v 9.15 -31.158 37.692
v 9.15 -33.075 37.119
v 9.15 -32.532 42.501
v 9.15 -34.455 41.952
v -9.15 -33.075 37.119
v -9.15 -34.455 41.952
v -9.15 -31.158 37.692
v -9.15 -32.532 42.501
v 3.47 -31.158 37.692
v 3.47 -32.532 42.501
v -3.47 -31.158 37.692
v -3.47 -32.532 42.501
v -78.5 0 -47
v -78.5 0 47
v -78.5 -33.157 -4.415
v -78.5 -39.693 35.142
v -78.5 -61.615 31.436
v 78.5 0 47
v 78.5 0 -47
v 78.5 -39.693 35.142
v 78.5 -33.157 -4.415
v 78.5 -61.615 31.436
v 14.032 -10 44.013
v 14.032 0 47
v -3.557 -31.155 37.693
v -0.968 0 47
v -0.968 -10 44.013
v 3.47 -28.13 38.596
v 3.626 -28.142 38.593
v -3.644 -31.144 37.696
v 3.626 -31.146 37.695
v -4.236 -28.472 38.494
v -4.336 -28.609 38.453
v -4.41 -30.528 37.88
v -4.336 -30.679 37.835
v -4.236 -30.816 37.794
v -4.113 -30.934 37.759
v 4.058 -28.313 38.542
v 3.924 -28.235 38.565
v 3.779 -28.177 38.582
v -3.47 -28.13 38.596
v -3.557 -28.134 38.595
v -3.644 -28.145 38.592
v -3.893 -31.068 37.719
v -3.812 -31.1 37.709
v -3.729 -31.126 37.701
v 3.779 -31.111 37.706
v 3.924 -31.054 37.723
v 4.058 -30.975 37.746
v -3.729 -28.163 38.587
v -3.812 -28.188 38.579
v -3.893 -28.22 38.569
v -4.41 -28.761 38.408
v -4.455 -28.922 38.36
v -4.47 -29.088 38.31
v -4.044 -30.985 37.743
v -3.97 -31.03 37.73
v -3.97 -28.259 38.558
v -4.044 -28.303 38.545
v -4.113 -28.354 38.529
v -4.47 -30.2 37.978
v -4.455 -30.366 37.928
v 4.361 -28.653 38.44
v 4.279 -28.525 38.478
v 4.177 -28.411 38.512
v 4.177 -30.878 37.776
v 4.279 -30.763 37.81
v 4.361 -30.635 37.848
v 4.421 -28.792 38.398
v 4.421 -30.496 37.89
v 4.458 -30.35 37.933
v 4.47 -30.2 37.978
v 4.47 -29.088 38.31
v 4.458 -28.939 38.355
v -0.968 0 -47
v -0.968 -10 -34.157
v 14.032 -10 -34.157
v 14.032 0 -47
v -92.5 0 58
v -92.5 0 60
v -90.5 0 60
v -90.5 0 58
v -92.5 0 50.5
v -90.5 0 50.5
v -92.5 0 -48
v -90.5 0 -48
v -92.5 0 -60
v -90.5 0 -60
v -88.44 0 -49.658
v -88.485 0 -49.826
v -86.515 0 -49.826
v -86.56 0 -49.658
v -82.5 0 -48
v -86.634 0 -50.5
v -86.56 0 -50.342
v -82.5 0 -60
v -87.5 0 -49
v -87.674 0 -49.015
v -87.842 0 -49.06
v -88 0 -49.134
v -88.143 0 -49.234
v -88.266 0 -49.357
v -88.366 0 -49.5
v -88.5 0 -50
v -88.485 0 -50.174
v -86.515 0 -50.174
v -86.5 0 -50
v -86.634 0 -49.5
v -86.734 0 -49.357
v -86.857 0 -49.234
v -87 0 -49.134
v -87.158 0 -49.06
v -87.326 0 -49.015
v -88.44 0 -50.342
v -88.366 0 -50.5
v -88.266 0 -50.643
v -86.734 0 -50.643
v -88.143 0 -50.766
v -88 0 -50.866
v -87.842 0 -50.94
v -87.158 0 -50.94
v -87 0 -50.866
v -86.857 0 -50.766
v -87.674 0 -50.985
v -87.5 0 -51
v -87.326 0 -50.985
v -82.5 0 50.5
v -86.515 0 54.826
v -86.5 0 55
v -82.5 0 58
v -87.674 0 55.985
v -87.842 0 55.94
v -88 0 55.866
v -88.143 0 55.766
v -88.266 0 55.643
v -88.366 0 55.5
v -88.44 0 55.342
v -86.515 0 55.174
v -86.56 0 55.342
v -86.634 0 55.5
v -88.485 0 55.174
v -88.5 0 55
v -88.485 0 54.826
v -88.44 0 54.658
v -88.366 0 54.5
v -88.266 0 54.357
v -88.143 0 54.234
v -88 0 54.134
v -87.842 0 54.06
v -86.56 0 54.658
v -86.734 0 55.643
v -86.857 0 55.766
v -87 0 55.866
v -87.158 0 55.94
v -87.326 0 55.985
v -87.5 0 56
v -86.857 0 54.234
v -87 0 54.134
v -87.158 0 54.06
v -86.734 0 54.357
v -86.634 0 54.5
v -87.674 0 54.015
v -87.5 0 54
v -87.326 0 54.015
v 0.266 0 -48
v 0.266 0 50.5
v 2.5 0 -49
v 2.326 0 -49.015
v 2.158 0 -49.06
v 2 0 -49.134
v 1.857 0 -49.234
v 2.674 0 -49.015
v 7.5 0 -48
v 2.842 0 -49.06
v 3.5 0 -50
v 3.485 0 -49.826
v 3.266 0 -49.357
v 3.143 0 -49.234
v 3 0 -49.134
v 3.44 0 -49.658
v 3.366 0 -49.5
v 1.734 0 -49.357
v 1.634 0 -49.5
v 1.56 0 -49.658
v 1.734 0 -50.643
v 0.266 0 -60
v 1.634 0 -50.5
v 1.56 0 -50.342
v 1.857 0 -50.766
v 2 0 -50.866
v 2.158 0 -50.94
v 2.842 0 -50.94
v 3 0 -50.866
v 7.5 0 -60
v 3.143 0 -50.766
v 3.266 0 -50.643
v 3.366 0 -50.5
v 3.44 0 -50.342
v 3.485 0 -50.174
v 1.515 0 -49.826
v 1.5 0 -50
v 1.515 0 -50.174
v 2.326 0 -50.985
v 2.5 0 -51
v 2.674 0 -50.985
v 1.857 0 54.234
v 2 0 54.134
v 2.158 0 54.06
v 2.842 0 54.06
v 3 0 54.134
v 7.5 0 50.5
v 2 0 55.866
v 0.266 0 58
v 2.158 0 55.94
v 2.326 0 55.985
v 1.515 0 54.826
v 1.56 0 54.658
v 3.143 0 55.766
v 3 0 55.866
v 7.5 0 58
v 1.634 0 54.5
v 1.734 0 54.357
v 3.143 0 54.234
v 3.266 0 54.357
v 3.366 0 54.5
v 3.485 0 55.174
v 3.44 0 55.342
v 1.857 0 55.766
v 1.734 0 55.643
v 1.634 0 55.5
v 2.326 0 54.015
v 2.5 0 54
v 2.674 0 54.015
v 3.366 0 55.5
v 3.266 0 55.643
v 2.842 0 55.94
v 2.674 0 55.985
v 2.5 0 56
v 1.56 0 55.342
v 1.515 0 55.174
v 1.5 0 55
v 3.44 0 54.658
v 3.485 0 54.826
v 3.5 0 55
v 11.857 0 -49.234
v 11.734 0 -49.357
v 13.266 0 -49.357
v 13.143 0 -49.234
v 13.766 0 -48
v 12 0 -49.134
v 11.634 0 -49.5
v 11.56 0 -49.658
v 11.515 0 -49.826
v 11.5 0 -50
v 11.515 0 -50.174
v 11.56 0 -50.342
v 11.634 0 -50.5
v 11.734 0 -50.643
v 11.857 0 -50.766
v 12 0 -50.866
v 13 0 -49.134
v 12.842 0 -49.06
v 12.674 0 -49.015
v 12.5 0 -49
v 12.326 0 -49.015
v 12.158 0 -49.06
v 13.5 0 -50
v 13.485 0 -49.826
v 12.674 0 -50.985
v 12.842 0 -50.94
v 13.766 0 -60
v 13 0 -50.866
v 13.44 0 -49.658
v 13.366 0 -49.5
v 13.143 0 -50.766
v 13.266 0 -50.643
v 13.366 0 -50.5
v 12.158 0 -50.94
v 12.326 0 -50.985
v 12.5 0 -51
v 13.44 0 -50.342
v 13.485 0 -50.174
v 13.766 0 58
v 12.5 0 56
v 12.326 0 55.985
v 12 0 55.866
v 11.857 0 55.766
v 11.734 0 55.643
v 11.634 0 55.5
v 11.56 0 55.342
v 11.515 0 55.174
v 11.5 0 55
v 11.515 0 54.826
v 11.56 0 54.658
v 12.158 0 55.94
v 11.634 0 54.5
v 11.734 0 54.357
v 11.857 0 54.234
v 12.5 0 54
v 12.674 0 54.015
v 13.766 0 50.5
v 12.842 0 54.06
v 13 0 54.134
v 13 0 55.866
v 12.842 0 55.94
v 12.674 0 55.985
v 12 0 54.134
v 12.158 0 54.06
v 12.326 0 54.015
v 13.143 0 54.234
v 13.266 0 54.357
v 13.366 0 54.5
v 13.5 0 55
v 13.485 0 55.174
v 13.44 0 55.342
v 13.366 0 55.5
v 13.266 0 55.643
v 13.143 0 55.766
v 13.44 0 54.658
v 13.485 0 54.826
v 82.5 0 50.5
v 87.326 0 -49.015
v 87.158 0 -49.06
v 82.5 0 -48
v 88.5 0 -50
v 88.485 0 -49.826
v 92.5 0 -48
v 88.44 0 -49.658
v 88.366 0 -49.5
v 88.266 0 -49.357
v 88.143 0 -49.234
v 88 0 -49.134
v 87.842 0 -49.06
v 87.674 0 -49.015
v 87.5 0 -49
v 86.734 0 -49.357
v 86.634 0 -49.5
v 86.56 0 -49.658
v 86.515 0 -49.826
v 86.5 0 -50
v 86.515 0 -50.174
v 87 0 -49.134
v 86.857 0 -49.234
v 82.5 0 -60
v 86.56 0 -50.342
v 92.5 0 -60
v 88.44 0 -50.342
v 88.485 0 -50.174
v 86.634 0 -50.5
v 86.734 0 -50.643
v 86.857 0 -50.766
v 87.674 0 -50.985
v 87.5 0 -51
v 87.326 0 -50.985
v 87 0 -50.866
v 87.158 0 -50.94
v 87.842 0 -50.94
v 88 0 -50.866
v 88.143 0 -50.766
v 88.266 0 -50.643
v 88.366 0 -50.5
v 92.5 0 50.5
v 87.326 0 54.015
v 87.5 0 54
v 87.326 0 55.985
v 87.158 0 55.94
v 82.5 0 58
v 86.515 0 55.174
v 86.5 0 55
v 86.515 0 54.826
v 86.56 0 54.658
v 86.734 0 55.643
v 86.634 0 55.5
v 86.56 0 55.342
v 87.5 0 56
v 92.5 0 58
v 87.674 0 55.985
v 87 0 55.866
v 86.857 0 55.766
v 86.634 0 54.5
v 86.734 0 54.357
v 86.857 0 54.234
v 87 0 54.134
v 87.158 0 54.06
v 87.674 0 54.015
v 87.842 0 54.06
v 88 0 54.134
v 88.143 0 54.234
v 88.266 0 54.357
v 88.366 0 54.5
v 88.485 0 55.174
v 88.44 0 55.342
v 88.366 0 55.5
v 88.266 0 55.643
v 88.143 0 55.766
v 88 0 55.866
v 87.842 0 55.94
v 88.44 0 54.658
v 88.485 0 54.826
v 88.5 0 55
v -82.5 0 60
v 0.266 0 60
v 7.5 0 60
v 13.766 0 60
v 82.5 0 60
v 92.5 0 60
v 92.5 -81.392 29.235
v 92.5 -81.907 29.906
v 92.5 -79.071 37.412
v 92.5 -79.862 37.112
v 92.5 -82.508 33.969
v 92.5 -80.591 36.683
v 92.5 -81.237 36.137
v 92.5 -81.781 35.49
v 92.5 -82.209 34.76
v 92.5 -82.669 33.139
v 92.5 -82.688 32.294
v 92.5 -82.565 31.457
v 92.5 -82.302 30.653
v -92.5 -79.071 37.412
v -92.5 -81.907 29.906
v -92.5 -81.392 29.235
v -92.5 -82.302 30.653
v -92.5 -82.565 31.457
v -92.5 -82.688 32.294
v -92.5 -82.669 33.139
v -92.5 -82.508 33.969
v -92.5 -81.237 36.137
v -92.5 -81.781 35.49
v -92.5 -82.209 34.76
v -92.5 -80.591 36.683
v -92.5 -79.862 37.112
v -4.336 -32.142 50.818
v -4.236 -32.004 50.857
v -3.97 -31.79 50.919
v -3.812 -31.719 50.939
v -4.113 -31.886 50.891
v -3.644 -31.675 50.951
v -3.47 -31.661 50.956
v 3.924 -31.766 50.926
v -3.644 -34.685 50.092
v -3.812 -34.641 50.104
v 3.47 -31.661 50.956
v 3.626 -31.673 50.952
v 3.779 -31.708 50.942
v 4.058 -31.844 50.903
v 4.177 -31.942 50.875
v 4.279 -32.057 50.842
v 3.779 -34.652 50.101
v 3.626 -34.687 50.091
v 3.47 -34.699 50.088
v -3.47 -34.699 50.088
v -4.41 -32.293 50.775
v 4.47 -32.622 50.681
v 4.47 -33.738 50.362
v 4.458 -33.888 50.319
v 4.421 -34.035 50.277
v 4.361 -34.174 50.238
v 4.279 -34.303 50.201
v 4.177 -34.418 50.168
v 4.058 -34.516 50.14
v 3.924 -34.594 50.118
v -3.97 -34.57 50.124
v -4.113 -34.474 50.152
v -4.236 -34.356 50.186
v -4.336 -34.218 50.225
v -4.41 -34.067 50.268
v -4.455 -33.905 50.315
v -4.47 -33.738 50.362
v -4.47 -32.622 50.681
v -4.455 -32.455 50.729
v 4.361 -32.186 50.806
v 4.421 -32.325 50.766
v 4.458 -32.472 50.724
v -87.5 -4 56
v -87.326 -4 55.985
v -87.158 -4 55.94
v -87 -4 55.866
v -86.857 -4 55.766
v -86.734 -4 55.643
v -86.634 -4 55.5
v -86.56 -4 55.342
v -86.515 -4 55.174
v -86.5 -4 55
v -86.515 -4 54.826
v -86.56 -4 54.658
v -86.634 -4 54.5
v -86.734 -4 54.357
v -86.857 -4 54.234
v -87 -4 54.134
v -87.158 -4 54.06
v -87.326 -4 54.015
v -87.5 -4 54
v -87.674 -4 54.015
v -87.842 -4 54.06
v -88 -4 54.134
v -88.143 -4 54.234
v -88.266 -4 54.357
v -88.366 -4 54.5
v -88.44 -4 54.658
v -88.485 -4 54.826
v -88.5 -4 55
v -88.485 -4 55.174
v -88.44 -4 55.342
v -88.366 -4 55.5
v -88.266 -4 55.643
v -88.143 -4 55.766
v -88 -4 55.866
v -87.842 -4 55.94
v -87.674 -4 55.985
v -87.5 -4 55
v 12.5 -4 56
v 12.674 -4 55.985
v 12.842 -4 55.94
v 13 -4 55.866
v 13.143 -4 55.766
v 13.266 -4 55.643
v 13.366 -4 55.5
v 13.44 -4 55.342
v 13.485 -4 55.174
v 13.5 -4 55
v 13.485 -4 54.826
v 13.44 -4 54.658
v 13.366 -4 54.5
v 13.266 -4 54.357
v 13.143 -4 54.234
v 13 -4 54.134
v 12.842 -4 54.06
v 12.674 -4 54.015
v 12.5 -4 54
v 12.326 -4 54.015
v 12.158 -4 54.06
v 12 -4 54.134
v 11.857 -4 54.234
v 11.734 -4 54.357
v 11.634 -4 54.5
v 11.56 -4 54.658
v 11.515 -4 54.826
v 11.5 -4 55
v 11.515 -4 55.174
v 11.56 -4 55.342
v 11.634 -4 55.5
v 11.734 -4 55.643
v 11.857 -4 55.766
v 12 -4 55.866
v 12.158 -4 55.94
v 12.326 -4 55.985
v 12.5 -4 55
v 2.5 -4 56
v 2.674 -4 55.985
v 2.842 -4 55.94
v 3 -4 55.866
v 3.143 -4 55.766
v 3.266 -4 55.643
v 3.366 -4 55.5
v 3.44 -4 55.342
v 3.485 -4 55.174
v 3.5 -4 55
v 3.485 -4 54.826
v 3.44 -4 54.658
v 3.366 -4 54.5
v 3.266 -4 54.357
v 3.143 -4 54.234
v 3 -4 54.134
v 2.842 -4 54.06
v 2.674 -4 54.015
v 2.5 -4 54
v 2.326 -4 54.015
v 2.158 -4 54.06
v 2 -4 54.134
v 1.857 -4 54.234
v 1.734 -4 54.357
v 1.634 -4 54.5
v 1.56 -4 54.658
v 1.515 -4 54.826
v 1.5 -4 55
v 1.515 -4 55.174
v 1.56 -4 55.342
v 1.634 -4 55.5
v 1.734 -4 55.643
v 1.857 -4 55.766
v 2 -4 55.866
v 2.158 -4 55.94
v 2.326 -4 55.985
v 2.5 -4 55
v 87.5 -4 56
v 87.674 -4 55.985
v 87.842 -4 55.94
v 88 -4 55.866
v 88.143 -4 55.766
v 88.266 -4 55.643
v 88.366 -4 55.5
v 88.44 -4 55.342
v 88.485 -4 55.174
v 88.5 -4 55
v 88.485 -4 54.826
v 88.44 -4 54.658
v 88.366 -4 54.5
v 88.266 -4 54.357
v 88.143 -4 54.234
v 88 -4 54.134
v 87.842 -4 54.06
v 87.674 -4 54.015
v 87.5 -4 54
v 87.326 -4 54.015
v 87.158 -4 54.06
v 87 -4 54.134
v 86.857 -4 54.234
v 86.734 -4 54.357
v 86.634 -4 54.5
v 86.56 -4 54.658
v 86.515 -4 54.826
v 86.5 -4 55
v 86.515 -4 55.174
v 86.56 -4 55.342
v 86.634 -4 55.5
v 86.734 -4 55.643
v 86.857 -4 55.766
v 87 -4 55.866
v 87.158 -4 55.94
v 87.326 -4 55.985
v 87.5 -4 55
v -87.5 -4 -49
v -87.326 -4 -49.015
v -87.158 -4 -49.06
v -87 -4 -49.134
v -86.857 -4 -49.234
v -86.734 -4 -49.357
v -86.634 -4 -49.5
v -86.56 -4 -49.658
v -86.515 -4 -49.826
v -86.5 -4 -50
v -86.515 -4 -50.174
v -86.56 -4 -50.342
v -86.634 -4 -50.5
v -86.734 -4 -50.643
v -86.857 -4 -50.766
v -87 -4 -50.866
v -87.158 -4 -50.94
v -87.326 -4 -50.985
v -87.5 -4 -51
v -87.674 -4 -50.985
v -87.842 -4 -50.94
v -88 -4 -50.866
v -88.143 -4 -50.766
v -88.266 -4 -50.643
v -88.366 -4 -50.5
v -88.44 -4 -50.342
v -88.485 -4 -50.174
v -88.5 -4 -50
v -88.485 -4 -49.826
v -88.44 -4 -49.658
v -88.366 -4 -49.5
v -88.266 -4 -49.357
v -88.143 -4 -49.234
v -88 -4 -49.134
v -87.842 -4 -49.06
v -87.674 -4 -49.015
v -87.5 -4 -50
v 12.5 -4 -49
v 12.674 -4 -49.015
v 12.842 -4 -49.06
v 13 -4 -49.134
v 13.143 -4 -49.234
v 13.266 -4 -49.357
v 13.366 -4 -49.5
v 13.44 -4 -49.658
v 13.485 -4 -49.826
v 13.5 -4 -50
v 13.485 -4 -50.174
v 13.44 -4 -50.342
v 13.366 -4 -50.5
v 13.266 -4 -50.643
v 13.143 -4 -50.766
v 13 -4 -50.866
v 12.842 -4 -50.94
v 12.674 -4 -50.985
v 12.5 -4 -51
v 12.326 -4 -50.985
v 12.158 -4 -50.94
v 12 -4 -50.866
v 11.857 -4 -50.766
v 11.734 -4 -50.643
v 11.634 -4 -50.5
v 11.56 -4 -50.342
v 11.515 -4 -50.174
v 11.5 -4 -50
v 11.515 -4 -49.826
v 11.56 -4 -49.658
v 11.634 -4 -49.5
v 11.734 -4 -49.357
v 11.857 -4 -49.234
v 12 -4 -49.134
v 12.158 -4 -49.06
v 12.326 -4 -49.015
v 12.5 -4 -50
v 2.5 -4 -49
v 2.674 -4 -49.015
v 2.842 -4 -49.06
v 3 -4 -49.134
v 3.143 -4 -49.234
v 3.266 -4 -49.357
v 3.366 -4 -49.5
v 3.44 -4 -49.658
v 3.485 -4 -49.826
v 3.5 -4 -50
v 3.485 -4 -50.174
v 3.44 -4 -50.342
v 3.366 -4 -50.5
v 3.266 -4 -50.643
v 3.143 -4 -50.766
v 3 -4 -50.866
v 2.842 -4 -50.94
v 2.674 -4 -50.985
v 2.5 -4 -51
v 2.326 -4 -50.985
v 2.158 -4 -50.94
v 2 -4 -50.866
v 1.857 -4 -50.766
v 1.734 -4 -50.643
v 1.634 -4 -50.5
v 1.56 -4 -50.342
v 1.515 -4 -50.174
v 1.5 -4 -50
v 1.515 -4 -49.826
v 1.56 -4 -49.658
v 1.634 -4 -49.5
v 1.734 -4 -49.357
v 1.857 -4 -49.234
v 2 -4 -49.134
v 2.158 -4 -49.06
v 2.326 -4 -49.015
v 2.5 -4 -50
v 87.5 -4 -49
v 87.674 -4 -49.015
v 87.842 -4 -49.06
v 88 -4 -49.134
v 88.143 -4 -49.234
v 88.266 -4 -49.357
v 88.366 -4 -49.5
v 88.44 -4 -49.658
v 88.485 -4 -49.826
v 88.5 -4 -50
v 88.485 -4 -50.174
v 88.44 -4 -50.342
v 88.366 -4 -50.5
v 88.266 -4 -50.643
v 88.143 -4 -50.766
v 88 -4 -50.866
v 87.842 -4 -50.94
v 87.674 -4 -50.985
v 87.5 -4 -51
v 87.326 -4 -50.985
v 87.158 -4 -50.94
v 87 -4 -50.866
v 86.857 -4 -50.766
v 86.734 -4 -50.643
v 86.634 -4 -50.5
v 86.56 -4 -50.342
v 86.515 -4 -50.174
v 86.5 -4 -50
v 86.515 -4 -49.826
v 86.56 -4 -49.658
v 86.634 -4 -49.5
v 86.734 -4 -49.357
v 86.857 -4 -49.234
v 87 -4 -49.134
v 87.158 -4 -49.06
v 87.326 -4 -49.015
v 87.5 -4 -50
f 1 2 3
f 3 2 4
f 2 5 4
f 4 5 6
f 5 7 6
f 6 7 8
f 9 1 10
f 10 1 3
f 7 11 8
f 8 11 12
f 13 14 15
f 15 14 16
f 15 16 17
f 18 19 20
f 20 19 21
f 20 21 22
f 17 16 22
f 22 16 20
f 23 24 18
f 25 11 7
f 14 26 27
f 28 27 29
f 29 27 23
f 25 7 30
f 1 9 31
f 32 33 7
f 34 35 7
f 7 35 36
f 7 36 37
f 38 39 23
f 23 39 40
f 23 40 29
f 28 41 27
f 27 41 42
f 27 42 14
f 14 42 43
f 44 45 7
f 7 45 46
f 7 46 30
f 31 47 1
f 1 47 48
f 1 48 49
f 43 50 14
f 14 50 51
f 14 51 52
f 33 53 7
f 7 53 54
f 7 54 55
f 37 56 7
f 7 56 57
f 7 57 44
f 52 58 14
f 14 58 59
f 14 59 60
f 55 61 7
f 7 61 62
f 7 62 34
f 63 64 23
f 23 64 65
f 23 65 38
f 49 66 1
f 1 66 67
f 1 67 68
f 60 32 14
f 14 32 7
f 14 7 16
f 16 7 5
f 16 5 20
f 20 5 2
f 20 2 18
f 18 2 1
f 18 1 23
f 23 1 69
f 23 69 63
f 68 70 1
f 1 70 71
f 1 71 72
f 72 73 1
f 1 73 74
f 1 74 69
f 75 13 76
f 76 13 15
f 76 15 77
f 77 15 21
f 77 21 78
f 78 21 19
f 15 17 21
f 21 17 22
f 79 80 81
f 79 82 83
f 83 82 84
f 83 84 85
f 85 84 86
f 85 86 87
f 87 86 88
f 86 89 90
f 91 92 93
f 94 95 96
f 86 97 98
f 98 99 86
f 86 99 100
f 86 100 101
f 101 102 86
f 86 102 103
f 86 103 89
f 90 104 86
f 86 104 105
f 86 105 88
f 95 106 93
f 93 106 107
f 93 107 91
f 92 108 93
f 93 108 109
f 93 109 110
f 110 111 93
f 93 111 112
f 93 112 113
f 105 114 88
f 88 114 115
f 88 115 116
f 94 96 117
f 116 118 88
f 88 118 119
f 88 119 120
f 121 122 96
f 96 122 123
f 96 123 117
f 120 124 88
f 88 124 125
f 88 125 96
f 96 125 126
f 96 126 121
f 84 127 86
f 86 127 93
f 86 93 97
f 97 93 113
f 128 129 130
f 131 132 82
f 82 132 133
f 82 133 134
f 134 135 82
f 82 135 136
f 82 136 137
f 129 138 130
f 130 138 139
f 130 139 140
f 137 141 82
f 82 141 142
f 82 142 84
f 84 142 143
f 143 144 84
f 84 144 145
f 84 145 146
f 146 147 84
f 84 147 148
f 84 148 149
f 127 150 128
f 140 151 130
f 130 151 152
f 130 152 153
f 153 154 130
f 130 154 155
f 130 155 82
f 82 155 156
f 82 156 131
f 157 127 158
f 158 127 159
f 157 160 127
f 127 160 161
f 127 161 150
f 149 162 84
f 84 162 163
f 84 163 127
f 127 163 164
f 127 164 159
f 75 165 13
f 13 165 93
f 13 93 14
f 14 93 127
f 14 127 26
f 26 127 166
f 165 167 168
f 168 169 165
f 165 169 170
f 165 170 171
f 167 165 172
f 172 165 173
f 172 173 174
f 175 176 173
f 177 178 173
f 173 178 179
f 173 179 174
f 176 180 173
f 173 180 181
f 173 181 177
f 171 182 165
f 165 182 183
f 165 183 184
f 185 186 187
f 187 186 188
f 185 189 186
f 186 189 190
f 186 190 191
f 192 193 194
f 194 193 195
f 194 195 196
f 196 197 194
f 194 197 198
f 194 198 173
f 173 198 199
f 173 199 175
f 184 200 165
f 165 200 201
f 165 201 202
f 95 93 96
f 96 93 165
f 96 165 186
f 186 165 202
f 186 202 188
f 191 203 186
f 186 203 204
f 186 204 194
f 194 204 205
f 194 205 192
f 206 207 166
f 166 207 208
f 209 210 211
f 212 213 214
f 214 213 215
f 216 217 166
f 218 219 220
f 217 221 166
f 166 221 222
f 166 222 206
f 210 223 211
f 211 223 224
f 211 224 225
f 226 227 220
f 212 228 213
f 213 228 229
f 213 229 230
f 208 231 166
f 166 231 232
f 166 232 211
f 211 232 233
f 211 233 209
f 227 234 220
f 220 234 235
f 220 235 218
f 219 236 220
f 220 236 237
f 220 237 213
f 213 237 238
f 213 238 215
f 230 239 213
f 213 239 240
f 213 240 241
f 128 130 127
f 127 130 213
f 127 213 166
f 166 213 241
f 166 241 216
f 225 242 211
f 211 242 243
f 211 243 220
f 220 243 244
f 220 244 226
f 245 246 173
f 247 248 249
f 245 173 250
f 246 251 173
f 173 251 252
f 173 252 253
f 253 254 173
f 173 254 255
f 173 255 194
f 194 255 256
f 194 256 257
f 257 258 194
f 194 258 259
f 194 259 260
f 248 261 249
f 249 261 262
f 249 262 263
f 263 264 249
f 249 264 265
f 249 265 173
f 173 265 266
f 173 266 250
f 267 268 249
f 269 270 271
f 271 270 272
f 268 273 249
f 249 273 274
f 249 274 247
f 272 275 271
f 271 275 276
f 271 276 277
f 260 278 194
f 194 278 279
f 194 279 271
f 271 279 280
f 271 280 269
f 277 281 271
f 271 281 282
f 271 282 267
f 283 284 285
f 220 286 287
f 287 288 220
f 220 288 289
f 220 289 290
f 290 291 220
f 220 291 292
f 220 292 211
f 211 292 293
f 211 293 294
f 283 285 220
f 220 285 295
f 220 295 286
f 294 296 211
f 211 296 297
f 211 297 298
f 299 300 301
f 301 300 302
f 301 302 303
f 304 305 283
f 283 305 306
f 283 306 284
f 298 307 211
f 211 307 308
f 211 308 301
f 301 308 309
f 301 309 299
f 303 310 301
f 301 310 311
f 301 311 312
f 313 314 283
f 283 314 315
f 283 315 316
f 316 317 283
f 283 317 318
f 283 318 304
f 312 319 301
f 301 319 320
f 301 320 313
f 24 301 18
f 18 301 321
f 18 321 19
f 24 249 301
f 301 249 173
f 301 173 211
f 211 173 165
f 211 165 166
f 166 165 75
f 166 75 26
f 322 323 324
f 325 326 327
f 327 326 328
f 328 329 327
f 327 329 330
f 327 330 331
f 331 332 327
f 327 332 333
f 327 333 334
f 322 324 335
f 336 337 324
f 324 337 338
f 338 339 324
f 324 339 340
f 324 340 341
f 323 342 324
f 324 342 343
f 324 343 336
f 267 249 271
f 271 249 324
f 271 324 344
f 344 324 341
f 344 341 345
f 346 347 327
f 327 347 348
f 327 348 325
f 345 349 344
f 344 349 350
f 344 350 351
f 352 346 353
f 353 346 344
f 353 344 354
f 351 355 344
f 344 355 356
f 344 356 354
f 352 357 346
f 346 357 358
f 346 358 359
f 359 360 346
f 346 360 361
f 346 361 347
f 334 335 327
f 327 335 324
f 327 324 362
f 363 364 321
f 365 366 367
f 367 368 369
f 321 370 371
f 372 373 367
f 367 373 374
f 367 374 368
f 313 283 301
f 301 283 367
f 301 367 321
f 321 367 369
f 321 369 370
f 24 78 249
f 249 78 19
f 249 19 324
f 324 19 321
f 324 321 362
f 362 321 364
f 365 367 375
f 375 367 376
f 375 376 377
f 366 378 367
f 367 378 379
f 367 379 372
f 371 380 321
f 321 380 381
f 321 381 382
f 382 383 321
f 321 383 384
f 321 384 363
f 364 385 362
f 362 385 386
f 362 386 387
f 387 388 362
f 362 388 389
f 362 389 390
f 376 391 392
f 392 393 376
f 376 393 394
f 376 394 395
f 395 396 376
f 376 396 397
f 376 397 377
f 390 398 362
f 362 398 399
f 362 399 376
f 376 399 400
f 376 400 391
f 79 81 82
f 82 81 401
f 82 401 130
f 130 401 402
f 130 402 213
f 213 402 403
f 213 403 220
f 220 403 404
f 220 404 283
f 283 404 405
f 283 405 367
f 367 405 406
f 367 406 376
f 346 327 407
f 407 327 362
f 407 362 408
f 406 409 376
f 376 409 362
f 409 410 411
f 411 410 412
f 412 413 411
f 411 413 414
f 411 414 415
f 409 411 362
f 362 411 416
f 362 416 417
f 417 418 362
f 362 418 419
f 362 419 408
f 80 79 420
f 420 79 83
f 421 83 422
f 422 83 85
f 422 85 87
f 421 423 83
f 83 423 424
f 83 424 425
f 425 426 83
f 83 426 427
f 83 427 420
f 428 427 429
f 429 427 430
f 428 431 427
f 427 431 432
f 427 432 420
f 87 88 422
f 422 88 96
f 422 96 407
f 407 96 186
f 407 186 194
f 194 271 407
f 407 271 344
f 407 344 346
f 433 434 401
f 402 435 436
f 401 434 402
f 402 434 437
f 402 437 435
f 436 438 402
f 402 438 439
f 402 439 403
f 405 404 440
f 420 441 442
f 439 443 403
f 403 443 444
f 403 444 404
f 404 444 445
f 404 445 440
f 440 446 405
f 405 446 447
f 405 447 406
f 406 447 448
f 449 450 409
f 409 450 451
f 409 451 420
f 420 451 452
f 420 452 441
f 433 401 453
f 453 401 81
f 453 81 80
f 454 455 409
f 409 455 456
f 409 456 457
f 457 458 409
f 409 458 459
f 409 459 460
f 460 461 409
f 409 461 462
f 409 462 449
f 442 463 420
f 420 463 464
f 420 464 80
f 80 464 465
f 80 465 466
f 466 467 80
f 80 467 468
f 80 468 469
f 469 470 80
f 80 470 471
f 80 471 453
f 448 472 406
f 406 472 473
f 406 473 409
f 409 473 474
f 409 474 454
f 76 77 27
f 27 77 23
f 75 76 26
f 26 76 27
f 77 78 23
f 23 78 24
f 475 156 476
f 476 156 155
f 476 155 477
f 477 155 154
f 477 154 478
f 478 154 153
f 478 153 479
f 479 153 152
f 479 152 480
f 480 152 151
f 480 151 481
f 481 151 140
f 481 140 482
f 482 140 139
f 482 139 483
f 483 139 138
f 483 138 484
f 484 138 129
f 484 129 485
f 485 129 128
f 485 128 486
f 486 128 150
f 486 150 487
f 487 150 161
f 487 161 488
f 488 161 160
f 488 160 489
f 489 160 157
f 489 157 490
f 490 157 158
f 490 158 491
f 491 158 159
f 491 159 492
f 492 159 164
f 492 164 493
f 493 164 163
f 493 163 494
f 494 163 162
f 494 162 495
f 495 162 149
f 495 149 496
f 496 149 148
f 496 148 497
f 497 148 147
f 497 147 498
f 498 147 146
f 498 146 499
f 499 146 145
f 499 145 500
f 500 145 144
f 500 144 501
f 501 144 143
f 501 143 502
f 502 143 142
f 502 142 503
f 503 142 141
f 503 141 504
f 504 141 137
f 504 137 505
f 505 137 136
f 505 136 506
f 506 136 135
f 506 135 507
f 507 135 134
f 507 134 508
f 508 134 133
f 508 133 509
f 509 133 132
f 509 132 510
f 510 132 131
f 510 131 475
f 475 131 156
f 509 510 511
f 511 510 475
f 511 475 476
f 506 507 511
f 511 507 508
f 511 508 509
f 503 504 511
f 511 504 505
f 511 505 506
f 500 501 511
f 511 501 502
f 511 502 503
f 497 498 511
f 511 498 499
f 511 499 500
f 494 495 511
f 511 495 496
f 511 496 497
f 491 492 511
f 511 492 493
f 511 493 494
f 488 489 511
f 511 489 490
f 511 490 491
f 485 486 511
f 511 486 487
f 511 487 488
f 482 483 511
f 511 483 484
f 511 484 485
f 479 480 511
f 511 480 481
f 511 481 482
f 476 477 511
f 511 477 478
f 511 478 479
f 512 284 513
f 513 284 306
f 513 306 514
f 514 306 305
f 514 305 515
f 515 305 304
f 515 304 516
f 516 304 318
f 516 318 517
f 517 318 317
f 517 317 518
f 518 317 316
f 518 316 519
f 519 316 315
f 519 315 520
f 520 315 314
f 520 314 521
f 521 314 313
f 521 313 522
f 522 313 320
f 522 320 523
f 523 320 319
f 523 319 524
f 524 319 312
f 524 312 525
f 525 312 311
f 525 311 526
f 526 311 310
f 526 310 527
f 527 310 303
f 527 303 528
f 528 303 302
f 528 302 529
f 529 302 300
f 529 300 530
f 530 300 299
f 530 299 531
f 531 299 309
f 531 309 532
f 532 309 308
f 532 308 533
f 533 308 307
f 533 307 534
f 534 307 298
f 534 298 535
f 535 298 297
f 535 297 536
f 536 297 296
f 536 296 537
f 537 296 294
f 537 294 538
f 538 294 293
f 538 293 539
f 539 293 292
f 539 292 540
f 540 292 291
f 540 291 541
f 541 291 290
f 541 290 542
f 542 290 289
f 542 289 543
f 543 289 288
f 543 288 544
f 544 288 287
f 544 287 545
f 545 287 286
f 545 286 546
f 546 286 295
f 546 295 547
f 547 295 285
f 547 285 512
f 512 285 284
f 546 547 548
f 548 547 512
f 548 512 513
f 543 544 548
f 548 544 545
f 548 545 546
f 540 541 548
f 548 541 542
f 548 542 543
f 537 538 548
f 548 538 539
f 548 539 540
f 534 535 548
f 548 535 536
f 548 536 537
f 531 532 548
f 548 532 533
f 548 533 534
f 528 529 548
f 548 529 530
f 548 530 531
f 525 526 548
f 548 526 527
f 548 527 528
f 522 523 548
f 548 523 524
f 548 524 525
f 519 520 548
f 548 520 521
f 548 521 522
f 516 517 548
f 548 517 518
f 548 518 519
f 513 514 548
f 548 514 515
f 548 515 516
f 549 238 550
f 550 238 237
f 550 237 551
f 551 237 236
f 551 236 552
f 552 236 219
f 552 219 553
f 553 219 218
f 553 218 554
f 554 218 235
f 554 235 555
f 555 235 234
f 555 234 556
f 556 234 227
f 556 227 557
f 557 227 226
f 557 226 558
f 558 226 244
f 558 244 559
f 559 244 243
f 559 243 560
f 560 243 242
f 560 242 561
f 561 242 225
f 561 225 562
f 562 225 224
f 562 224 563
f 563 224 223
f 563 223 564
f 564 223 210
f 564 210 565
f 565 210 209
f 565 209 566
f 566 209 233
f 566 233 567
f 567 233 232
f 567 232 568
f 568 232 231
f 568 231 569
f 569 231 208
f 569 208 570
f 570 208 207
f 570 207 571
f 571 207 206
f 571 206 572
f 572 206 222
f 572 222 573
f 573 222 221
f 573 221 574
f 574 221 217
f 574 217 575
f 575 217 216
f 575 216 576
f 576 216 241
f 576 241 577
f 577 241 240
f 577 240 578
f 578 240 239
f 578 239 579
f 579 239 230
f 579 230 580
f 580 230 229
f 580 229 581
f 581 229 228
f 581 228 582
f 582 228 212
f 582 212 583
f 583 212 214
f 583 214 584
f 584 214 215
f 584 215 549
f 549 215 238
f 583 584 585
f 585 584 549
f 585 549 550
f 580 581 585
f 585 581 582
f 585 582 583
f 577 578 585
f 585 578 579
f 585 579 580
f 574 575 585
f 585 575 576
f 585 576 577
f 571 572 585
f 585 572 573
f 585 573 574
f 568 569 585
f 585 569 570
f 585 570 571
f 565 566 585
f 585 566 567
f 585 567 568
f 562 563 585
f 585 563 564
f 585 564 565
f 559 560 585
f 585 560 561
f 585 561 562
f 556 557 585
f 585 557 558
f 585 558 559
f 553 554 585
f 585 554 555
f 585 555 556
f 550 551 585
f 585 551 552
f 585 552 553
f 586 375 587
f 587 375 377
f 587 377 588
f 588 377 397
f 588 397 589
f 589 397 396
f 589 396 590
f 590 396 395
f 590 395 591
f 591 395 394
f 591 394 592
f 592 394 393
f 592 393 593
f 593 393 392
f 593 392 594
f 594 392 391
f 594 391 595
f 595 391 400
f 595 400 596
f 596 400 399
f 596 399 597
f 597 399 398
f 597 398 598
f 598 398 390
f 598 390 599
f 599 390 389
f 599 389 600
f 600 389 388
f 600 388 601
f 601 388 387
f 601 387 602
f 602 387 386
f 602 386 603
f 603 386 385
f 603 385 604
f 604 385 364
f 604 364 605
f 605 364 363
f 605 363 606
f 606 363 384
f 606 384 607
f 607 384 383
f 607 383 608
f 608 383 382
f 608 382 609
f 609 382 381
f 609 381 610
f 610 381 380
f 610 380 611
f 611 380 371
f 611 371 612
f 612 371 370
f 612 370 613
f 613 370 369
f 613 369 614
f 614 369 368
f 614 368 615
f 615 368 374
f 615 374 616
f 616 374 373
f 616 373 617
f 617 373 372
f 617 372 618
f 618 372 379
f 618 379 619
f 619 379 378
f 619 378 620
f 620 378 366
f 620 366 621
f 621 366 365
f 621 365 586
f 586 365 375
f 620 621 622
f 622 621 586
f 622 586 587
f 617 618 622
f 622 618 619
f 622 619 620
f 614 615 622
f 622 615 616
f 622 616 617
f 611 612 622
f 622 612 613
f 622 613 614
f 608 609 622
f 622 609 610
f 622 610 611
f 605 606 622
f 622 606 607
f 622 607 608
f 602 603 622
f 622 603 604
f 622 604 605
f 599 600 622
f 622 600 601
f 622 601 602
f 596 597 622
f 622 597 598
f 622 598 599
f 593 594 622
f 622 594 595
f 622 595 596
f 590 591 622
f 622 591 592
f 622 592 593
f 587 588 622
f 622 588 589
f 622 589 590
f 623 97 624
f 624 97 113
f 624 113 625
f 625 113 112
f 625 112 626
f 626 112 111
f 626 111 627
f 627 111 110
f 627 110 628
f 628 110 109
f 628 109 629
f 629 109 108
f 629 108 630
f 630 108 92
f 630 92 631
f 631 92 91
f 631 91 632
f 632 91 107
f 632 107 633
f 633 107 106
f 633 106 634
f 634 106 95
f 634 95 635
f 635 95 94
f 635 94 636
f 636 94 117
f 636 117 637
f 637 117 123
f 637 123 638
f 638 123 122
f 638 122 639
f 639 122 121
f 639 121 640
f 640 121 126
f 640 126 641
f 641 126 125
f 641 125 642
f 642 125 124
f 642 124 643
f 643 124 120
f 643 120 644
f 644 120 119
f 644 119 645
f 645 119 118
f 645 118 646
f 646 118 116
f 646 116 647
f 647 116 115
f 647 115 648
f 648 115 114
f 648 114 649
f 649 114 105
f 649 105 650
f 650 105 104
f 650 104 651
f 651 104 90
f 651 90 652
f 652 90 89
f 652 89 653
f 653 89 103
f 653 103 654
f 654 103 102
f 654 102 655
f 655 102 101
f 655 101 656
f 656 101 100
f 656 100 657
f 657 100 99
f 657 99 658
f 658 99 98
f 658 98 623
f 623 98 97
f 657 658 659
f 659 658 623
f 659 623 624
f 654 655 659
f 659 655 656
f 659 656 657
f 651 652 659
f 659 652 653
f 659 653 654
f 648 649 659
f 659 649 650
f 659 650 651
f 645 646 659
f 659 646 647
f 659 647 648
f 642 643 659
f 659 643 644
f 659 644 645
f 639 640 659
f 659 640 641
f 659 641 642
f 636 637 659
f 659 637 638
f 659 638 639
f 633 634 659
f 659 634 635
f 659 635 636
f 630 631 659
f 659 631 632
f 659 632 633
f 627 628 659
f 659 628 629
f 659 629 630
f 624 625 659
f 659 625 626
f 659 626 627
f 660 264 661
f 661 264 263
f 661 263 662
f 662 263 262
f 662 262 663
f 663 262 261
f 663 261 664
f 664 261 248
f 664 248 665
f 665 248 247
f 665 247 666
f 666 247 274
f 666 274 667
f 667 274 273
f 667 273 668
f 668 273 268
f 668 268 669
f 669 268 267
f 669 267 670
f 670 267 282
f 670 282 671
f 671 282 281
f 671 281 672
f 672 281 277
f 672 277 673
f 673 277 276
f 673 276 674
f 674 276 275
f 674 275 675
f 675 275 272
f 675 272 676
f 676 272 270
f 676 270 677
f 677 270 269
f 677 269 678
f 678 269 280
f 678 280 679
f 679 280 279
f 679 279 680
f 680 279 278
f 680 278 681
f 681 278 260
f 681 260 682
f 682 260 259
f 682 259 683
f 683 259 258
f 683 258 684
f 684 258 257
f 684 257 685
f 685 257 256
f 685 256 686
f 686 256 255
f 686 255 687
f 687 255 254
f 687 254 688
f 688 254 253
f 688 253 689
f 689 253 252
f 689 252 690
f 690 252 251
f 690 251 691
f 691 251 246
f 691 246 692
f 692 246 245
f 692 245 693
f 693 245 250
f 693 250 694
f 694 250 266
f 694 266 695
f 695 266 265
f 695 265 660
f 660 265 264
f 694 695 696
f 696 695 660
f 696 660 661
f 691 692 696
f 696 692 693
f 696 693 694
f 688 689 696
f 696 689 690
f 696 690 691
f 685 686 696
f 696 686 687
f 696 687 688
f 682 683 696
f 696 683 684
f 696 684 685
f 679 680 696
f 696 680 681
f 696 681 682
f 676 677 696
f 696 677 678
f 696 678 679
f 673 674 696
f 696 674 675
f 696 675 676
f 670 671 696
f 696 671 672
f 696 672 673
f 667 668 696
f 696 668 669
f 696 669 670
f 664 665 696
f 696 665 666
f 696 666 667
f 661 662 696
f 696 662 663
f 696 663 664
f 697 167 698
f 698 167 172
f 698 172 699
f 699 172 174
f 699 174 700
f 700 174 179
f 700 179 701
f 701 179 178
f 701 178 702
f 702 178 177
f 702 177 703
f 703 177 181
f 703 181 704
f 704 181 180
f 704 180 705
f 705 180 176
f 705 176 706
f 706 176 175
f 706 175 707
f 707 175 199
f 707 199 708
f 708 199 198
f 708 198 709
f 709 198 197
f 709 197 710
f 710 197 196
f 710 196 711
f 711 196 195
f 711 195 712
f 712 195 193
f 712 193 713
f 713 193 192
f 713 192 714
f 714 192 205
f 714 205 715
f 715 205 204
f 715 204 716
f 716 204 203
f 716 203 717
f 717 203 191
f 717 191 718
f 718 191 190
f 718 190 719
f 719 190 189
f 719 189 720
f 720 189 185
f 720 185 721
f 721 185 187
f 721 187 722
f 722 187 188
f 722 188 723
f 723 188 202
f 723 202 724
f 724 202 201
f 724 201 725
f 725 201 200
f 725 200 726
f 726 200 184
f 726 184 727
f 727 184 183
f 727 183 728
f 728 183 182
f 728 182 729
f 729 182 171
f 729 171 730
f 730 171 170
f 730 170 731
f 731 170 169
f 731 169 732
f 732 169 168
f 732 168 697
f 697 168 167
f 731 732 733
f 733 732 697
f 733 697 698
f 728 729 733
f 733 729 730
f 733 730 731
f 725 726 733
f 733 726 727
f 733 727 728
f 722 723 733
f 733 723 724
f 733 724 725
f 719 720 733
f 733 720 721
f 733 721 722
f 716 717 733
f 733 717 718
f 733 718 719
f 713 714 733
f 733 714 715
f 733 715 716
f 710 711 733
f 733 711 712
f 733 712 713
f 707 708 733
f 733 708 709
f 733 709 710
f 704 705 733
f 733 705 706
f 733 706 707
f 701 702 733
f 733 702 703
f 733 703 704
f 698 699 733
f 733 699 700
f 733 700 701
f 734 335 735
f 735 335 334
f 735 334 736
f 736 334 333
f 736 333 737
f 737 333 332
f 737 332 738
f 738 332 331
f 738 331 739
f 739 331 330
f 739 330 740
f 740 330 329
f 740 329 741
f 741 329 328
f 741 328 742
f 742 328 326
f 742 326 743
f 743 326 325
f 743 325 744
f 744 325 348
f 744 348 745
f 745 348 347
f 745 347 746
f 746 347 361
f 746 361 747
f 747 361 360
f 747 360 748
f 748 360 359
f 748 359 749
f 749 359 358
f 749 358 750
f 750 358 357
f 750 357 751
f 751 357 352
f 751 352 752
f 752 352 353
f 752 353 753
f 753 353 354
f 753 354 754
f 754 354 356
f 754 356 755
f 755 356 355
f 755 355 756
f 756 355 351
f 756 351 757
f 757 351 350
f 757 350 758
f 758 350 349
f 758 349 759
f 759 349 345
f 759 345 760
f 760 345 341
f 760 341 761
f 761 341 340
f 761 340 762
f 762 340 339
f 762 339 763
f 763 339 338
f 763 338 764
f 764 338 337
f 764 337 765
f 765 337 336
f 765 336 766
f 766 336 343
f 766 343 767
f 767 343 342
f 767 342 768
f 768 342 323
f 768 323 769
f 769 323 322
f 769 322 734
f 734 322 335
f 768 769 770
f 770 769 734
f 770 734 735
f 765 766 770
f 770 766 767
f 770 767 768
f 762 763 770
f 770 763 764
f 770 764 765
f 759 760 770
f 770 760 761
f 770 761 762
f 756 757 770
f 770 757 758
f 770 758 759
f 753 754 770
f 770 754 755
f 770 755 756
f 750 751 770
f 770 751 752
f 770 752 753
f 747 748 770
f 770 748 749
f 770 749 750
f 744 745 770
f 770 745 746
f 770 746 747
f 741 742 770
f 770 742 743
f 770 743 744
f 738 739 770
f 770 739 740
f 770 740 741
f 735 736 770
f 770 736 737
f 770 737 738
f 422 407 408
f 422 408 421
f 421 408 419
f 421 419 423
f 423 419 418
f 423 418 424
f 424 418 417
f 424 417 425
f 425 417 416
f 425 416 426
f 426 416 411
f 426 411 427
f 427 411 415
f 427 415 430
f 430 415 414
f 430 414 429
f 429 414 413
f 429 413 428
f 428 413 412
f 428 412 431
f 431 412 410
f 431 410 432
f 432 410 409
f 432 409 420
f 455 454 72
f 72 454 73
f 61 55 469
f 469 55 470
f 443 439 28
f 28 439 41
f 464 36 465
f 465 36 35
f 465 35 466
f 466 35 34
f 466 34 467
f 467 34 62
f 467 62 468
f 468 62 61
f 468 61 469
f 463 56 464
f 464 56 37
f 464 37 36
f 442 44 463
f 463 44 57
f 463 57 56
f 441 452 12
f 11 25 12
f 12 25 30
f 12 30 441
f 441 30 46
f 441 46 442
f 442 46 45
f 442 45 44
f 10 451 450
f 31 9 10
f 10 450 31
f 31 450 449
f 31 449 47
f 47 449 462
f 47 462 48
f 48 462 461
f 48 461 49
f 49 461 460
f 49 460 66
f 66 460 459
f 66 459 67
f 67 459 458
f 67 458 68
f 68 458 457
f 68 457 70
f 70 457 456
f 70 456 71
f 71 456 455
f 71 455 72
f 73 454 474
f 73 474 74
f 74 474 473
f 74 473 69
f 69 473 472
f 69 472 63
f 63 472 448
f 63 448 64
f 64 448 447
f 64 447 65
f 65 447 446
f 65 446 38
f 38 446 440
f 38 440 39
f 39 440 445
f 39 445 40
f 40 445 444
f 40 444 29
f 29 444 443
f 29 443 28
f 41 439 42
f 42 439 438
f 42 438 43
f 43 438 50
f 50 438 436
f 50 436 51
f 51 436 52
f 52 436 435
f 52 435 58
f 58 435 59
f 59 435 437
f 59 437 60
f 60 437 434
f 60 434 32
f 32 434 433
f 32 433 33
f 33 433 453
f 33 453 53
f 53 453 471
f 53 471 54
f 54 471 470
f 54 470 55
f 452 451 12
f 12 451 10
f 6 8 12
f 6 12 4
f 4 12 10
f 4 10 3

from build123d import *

# Parameters (mm, degrees)
SKETCH1_W           = 185
SKETCH1_H           = 120
BOSS_EXTRUDE1_DEPTH = 10
BOSS_EXTRUDE2_DEPTH = 14
BOSS_EXTRUDE3_DEPTH = 157
BOSS_EXTRUDE4_DEPTH = 14
SKETCH6_W           = 120
SKETCH6_H           = 10
CUT_EXTRUDE1_DEPTH  = 300
SKETCH7_W           = 15
SKETCH7_H           = 94
BOSS_EXTRUDE5_DEPTH = 10
SKETCH8_R           = 1
CUT_EXTRUDE2_DEPTH  = 4
SKETCH9_R           = 1
CUT_EXTRUDE3_DEPTH  = 4
FILLET1_R           = 5
SKETCH10_W          = 8.94
SKETCH10_H          = 3.16
CUT_EXTRUDE4_DEPTH  = 13
FILLET2_R           = 1
SKETCH12_W          = 18.3
SKETCH12_H          = 2
CUT_EXTRUDE6_DEPTH  = 13
SKETCH13_W          = 18.3
SKETCH13_H          = 2
BOSS_EXTRUDE6_DEPTH = 7.89


with BuildPart() as part:
    # Sketch1 → Boss-Extrude1 (new body)
    with BuildSketch(Plane(origin=(0, 0, 0), x_dir=(1, 0, 0), z_dir=(0, 1, 0))):
        Rectangle(SKETCH1_W, SKETCH1_H)
    extrude(amount=BOSS_EXTRUDE1_DEPTH)

    # Sketch3 → Boss-Extrude2 (add)
    with BuildSketch(Plane(origin=(92.5, 0, 0), x_dir=(0, 0, -1), z_dir=(1, 0, 0))):
        Polygon((60, 0), (-35.195789495, -86.829236424), (-60, 0), align=None)
    extrude(amount=-BOSS_EXTRUDE2_DEPTH)

    # Sketch4 → Boss-Extrude3 (add)
    with BuildSketch(Plane.ZY.offset(-78.5)):
        Polygon((35.141852327, -39.693461507), (47, 0), (60, 0), (35.195789495, -86.829236424), (-60, 0), (-47, 0), (-4.415483527, -33.157236801), (31.435973084, -61.614600076), align=None)
    extrude(amount=BOSS_EXTRUDE3_DEPTH)

    # Sketch5 → Boss-Extrude4 (add)
    with BuildSketch(Plane.ZY.offset(78.5)):
        Polygon((60, 0), (-60, 0), (35.195789495, -86.829236424), align=None)
    extrude(amount=BOSS_EXTRUDE4_DEPTH)

    # Sketch6 → Cut-Extrude1 (cut)
    with BuildSketch(Plane.ZY.offset(92.5)):
        with Locations((0, 5)):
            Rectangle(SKETCH6_W, SKETCH6_H)
    extrude(amount=-CUT_EXTRUDE1_DEPTH, mode=Mode.SUBTRACT)

    # Sketch7 → Boss-Extrude5 (add)
    with BuildSketch(Plane(origin=(0, 0, 0), x_dir=(1, 0, 0), z_dir=(0, 1, 0))):
        with Locations((6.531892019, 0)):
            Rectangle(SKETCH7_W, SKETCH7_H)
    extrude(amount=-BOSS_EXTRUDE5_DEPTH)

    # Sketch8 → Cut-Extrude2 (cut)
    with BuildSketch(Plane(origin=(0, 0, 0), x_dir=(1, 0, 0), z_dir=(0, 1, 0))):
        with Locations((87.5, -55)):
            Circle(SKETCH8_R)
        with Locations((-87.5, -55)):
            Circle(SKETCH8_R)
        with Locations((12.5, -55)):
            Circle(SKETCH8_R)
        with Locations((2.5, -55)):
            Circle(SKETCH8_R)
    extrude(amount=-CUT_EXTRUDE2_DEPTH, mode=Mode.SUBTRACT)

    # Sketch9 → Cut-Extrude3 (cut)
    with BuildSketch(Plane(origin=(0, 0, 0), x_dir=(1, 0, 0), z_dir=(0, 1, 0))):
        with Locations((87.5, 50)):
            Circle(SKETCH9_R)
        with Locations((-87.5, 50)):
            Circle(SKETCH9_R)
        with Locations((12.5, 50)):
            Circle(SKETCH9_R)
        with Locations((2.5, 50)):
            Circle(SKETCH9_R)
    extrude(amount=-CUT_EXTRUDE3_DEPTH, mode=Mode.SUBTRACT)

    # Fillet1
    fillet1_edges = [part.edges().sort_by_distance(p)[0] for p in [
        (0, -86.829236424, 35.195789495),
    ]]
    fillet(fillet1_edges, radius=FILLET1_R)

    # Sketch10 → Cut-Extrude4 (cut)
    with BuildSketch(Plane(origin=(0, -15.846809365, 55.473096258), x_dir=(1, 0, 0), z_dir=(0, -0.274678714, 0.961536065))):
        with Locations((0, -18.026592613)):
            Rectangle(SKETCH10_W, SKETCH10_H)
    extrude(amount=-CUT_EXTRUDE4_DEPTH, mode=Mode.SUBTRACT)

    # Fillet2
    fillet2_edges = [part.edges().sort_by_distance(p)[0] for p in [
        (4.47, -29.895487229, 44.775936137),
        (4.47, -32.92871232, 43.889647284),
        (-4.47, -32.92871232, 43.889647284),
        (-4.47, -29.895487229, 44.775936137),
    ]]
    fillet(fillet2_edges, radius=FILLET2_R)

    # Sketch12 → Cut-Extrude6 (cut)
    with BuildSketch(Plane(origin=(0, -15.846809365, 55.473096258), x_dir=(1, 0, 0), z_dir=(0, -0.274678714, 0.961536065))):
        with Locations((0, -20.606592613)):
            Rectangle(SKETCH12_W, SKETCH12_H)
    extrude(amount=-CUT_EXTRUDE6_DEPTH, mode=Mode.SUBTRACT)

    # Sketch13 → Boss-Extrude6 (add)
    with BuildSketch(Plane(origin=(0, -15.846809365, 55.473096258), x_dir=(1, 0, 0), z_dir=(0, -0.274678714, 0.961536065))):
        with Locations((0, -20.606592613)):
            Rectangle(SKETCH13_W, SKETCH13_H)
    extrude(amount=-BOSS_EXTRUDE6_DEPTH)


solid = part.part
